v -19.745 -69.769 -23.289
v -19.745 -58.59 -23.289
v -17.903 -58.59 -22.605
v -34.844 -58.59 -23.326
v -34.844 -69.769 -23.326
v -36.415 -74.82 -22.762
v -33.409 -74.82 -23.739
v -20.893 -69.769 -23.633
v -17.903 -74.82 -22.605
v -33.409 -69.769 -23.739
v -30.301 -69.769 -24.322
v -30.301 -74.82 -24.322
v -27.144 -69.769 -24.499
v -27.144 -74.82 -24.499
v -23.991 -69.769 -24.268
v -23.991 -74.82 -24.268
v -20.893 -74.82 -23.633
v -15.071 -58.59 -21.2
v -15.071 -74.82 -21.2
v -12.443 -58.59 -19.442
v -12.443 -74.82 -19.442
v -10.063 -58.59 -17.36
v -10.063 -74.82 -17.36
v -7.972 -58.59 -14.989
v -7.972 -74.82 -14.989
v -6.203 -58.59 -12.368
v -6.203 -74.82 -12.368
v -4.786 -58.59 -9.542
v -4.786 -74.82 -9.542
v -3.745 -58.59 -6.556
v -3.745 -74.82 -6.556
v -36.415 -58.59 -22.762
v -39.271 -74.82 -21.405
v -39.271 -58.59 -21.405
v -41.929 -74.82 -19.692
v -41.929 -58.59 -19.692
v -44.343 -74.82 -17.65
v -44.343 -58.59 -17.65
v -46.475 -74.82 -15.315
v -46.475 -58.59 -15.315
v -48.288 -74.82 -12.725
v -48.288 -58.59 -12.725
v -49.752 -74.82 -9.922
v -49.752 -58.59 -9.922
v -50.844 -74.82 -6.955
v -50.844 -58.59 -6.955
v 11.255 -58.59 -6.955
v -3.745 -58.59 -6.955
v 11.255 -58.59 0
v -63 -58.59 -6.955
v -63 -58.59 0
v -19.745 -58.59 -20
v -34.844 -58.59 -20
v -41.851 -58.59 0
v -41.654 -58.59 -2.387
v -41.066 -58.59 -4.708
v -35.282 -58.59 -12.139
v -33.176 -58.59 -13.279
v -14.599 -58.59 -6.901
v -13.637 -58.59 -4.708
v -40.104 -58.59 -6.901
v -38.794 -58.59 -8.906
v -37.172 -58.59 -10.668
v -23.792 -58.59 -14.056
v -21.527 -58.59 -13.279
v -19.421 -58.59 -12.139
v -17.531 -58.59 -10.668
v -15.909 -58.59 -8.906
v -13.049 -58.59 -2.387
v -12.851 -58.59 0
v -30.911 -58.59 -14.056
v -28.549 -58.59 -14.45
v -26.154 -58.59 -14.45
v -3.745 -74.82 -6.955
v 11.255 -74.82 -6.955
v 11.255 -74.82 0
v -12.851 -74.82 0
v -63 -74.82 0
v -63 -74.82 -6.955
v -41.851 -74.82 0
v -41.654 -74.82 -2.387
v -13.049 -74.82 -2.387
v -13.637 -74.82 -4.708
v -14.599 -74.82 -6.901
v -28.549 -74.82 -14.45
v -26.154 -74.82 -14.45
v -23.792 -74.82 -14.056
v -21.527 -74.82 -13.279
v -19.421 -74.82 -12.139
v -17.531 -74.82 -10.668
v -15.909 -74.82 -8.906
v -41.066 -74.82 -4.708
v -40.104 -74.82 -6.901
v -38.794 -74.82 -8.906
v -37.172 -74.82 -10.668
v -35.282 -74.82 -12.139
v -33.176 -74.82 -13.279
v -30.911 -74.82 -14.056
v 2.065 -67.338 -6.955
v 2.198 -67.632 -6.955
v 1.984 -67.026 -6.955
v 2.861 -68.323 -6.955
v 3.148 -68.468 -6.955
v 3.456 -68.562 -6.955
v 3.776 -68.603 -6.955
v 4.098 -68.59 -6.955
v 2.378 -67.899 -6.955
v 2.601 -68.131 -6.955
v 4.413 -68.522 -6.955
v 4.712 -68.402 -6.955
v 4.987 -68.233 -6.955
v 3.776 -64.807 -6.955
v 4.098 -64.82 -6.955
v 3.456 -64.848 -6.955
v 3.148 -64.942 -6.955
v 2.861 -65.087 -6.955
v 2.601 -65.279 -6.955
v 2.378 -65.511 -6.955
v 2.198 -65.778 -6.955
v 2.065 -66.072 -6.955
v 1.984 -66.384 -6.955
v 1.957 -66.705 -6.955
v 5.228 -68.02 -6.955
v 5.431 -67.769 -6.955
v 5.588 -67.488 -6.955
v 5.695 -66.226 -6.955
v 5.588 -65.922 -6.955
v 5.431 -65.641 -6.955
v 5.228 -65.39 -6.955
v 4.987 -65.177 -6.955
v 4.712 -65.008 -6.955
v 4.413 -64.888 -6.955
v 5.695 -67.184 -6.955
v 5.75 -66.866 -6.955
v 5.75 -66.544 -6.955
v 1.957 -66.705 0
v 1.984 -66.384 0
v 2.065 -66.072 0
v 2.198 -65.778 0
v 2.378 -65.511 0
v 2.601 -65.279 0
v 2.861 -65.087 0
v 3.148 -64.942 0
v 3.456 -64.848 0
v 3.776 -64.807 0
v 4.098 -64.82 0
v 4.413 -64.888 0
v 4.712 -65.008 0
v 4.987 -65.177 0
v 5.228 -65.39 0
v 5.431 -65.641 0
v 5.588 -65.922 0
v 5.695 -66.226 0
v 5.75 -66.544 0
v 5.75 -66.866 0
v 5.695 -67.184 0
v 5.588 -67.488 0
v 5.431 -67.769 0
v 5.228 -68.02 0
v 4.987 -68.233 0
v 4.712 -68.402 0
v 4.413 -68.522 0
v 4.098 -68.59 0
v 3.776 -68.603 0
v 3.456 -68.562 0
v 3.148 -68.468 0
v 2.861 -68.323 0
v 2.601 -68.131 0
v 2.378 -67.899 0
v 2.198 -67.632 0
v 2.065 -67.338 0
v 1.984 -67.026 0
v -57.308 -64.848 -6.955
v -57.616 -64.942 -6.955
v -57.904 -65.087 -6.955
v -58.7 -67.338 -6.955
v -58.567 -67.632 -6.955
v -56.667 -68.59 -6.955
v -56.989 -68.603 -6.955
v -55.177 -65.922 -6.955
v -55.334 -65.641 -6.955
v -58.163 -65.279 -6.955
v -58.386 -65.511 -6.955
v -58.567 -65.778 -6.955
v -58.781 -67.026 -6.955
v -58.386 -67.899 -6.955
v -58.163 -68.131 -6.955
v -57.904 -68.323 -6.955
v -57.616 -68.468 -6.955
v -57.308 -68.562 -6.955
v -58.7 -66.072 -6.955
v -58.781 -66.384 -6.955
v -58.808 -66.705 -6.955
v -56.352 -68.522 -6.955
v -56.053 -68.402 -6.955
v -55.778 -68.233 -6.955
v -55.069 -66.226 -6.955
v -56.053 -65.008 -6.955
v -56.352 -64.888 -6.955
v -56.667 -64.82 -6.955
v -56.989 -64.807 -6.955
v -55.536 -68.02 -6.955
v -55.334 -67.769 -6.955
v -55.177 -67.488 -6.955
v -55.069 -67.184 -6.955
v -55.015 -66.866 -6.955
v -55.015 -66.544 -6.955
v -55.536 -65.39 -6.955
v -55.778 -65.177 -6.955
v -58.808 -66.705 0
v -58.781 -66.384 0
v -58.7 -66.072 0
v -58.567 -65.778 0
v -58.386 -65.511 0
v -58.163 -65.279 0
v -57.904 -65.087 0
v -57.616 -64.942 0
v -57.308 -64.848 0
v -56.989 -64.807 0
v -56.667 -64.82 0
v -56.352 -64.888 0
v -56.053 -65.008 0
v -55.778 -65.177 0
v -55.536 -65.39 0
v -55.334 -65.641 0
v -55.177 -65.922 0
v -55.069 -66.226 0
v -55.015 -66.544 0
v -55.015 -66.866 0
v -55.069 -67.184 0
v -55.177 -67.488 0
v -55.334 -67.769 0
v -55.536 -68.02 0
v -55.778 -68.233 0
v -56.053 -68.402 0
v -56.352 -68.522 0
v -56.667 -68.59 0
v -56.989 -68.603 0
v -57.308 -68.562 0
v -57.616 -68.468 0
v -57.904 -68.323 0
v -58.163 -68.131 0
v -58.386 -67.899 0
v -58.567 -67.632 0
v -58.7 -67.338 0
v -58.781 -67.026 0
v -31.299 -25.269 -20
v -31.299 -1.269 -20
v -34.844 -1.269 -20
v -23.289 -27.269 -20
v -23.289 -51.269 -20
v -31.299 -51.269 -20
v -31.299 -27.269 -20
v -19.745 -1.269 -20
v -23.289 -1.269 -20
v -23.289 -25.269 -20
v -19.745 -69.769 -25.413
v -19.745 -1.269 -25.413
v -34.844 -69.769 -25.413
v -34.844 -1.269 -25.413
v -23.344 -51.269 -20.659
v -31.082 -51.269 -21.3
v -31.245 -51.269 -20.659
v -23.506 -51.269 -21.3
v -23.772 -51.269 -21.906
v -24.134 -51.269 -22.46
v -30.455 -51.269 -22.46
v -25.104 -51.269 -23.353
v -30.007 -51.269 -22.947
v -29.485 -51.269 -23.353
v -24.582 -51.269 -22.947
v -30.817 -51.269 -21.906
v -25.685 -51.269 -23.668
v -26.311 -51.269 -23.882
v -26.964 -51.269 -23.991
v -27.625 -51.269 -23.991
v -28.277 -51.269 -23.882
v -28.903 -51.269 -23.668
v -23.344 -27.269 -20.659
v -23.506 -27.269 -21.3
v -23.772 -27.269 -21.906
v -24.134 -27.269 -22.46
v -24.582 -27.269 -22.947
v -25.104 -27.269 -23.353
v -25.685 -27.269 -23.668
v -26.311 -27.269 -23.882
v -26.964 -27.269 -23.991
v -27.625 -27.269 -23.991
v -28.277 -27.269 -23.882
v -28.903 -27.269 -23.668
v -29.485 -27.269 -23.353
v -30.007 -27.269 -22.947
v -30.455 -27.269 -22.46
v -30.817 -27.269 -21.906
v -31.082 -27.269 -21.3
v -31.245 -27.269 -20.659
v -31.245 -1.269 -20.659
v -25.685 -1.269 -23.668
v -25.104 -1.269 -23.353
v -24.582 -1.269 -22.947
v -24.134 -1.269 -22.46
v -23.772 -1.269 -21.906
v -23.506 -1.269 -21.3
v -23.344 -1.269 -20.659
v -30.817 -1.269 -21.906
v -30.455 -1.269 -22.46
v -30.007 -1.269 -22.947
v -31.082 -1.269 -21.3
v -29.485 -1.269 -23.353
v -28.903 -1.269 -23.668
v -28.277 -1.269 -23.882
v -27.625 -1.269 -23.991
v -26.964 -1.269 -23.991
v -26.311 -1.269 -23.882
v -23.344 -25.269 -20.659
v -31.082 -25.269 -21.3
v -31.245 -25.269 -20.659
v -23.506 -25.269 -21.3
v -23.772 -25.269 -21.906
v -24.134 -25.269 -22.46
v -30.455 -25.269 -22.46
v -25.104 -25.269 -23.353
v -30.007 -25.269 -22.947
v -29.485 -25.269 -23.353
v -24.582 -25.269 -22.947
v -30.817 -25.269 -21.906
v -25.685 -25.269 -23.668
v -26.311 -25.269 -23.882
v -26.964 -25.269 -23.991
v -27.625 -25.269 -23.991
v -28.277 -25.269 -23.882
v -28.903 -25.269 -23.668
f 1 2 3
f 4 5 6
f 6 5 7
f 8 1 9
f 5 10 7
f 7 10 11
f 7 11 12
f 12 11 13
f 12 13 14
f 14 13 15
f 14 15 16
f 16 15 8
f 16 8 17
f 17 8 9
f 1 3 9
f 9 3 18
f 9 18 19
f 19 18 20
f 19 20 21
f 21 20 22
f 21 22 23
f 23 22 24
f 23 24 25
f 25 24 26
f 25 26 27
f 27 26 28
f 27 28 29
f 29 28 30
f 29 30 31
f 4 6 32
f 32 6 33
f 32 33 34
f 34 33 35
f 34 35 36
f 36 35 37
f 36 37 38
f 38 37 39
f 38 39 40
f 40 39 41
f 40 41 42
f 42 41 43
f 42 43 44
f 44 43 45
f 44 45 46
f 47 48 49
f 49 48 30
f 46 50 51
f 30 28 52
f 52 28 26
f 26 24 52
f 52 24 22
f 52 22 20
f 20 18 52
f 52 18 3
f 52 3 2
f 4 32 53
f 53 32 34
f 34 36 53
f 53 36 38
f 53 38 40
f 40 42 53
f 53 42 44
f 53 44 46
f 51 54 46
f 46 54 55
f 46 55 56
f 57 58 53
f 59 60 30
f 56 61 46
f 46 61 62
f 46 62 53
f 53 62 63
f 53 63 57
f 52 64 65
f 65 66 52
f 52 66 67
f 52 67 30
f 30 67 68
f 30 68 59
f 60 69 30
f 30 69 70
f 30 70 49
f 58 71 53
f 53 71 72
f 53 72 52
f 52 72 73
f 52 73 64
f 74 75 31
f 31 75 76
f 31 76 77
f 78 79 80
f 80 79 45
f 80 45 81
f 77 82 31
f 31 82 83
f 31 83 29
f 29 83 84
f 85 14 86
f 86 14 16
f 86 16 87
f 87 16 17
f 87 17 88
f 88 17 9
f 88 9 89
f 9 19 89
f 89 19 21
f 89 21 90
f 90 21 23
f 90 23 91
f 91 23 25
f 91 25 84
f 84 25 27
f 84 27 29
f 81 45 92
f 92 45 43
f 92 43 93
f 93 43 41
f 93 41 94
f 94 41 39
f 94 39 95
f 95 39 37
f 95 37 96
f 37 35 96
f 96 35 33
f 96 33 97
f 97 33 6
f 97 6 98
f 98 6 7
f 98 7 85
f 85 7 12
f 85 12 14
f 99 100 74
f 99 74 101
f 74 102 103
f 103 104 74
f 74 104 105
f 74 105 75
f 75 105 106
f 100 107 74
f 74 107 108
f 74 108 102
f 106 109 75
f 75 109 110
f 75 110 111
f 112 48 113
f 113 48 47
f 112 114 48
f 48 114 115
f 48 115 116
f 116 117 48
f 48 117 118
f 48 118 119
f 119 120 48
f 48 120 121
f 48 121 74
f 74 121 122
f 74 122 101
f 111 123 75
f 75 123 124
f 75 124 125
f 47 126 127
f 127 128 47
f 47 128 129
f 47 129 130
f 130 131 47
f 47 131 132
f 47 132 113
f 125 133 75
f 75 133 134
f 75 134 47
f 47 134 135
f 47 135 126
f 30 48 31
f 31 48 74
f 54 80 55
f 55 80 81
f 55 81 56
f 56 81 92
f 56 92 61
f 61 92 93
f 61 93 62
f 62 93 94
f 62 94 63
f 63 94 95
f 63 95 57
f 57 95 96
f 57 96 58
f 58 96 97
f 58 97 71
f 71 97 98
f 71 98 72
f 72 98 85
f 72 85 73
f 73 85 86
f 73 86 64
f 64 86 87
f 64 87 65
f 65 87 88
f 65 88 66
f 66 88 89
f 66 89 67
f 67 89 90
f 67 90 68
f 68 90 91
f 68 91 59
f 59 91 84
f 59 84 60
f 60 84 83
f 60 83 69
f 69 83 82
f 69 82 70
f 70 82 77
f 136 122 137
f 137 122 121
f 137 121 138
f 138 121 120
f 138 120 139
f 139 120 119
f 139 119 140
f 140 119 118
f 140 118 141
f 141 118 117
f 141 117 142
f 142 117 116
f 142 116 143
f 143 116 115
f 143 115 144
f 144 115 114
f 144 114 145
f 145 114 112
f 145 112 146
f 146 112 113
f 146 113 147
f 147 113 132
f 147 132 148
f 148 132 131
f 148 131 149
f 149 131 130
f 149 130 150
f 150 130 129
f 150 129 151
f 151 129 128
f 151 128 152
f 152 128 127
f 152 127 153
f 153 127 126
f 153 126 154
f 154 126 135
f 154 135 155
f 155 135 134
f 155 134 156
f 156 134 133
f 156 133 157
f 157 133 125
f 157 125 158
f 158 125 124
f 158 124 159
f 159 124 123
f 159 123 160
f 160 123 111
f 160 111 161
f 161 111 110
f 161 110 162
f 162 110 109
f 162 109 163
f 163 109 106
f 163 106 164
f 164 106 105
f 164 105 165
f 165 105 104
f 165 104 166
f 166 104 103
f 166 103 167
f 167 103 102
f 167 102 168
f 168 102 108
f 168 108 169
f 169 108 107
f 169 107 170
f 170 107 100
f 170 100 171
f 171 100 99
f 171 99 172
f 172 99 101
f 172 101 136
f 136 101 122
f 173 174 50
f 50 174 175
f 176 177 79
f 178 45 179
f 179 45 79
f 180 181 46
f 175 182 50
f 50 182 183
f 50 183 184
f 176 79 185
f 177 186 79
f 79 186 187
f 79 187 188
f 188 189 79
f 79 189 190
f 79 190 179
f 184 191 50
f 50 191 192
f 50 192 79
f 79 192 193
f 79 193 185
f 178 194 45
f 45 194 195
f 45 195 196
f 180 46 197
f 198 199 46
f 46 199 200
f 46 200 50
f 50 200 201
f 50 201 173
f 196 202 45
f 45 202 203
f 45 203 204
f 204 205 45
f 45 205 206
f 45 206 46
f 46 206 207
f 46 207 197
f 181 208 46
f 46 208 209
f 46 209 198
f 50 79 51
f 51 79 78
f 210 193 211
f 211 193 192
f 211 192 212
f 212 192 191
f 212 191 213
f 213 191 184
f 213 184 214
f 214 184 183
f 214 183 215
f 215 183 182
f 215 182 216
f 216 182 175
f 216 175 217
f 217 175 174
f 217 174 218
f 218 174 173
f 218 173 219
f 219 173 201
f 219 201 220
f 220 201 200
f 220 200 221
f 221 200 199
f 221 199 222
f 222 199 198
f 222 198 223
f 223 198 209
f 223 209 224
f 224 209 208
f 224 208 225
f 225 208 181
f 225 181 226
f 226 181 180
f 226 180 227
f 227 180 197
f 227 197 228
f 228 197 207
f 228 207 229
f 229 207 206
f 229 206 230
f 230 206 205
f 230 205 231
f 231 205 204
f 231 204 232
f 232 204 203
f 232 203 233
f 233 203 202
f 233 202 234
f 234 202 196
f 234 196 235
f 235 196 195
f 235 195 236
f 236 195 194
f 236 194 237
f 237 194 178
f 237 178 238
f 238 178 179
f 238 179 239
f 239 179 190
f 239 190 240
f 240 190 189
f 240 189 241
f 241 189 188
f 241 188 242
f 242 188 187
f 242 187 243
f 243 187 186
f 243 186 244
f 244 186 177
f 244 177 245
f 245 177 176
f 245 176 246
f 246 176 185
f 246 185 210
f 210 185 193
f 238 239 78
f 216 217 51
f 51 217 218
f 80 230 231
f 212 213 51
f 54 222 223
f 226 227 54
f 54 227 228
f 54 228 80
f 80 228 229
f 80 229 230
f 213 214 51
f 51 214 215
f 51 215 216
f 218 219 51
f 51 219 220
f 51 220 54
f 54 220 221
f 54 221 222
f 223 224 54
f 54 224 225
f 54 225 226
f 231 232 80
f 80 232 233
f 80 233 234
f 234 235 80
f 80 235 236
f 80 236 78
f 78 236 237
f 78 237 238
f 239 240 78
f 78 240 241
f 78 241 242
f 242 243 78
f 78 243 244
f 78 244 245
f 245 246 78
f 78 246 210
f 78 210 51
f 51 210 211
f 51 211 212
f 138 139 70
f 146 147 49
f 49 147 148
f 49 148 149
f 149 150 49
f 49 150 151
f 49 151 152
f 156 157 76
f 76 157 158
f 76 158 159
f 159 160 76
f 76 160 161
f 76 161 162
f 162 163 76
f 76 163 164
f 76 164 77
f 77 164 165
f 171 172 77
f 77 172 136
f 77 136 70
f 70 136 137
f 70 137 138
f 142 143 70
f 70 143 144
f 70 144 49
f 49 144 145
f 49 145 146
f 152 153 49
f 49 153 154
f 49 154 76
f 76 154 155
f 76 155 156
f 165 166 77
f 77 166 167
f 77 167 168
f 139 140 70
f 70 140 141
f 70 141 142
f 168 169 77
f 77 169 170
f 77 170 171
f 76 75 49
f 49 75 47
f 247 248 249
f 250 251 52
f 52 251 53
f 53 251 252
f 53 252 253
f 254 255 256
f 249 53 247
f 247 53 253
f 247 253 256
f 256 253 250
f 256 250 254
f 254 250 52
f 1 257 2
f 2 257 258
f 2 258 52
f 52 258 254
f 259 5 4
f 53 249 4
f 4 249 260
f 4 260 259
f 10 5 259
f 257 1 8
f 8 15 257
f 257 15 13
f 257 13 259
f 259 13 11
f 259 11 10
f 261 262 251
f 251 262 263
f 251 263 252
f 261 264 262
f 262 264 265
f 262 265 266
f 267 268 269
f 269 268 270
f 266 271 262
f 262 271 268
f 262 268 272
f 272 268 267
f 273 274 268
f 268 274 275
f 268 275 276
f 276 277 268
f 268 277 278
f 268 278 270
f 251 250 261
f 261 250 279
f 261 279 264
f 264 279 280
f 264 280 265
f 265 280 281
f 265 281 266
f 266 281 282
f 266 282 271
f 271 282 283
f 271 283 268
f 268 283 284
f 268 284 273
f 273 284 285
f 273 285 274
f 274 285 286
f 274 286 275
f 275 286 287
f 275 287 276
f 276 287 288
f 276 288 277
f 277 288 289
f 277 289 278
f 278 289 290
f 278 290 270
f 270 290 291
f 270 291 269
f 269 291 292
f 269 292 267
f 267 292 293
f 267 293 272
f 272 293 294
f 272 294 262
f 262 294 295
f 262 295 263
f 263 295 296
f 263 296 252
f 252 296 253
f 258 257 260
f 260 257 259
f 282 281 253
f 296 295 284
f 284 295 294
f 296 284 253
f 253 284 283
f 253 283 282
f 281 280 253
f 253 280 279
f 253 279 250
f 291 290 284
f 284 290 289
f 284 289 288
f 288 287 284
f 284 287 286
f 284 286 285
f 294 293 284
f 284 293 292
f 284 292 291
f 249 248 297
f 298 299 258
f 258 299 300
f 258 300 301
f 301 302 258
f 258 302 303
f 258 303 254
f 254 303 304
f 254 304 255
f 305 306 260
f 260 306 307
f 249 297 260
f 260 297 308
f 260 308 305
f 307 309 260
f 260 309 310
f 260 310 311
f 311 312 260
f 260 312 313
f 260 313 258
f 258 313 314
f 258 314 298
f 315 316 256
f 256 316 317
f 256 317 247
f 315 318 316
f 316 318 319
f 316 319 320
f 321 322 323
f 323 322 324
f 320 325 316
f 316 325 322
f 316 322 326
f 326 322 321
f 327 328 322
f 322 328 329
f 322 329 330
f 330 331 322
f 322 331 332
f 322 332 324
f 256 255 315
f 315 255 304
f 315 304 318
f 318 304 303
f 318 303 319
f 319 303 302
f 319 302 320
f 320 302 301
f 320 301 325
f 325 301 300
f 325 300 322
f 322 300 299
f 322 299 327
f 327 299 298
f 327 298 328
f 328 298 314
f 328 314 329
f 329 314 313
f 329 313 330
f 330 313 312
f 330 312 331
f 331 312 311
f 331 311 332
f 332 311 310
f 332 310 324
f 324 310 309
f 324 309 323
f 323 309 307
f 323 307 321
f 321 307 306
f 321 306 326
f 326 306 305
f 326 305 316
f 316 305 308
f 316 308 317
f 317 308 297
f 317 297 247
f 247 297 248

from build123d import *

# Parameters (mm, degrees)
SKETCH_1_W                = 48.51
SKETCH_1_H                = 34
SKETCH_1_W_2              = 28.51
SKETCH_1_H_2              = 14
EXTRUDE_1_DEPTH           = 12.25
SKETCH_2_R                = 1.91
CUT_EXTRUDE_1_DEPTH       = 33.05257439
SKETCH_4_W                = 13
SKETCH_4_H                = 13.91
EXTRUDE_1_2_DEPTH         = 74.82
SKETCH_5_W                = 13.91
SKETCH_5_H                = 16.23
EXTRUDE_2_DEPTH           = 15
SKETCH_7_R                = 24.5
SKETCH_7_R_2              = 14.5
EXTRUDE_2_2_DEPTH         = 16.23
SKETCH_12_R               = 1.9
CUT_EXTRUDE_4_DEPTH       = 97.312124675
EXTRUDE_3_DEPTH           = 10
EXTRUDE_3_DEPTH_BACK      = 8
SKETCH_13_W               = 13.91
SKETCH_13_H               = 16.23
SKETCH_14_R               = 1.9
CUT_EXTRUDE_5_DEPTH       = 103.744583434
SKETCH_16_W               = 90.709398763
SKETCH_16_H               = 28.955068616
CUT_EXTRUDE_7_DEPTH       = 111.229011154
SKETCH_18_W               = 13
SKETCH_18_H               = 93.080932143
CUT_EXTRUDE_10_DEPTH      = 27
CUT_EXTRUDE_11_DEPTH      = 57
CUT_EXTRUDE_11_DEPTH_BACK = 27
SKETCH_17_W               = 20.23049449
SKETCH_17_H               = 80.723570055
SKETCH_21_W               = 15.09856282
SKETCH_21_H               = 42.5
EXTRUDE_6_DEPTH           = 10
SKETCH_22_R               = 4.005
CUT_EXTRUDE_12_DEPTH      = 24
SKETCH_23_W               = 15.09856282
SKETCH_23_H               = 4.587452919
CUT_EXTRUDE_13_DEPTH      = 85.439664289
SKETCH_24_W               = 15.09856282
SKETCH_24_H               = 5.412547081
EXTRUDE_8_DEPTH           = 26
SKETCH_25_R               = 4.005
CUT_EXTRUDE_14_DEPTH      = 24


with BuildPart() as part:
    # 草圖1 → Extrude 1 (new body)
    with BuildSketch(Plane(origin=(0, 0, 0), x_dir=(1, 0, 0), z_dir=(0, 1, 0))):
        Rectangle(SKETCH_1_W, SKETCH_1_H)
        Rectangle(SKETCH_1_W_2, SKETCH_1_H_2, mode=Mode.SUBTRACT)
    extrude(amount=EXTRUDE_1_DEPTH)

    # 草圖2 → 除料-伸長1 (cut, through all)
    with BuildSketch(Plane(origin=(0, 12.25, 0), x_dir=(1, 0, 0), z_dir=(0, 1, 0))):
        with Locations(Location((-19.255, 0, 0), (0, 0, 270))):
            Circle(SKETCH_2_R)
        with Locations(Location((19.255, 0, 0), (0, 0, 270))):
            Circle(SKETCH_2_R)
    extrude(amount=-CUT_EXTRUDE_1_DEPTH, mode=Mode.SUBTRACT)

    # 草圖4 → Extrude 1 2 (add)
    with BuildSketch(Plane.XZ):
        with Locations((17.755, 0)):
            Rectangle(SKETCH_4_W, SKETCH_4_H)
    extrude(amount=EXTRUDE_1_2_DEPTH)

    # 草圖5 → Extrude 2 (add)
    with BuildSketch(Plane.ZY.offset(-11.255)):
        with Locations((0, -66.705)):
            Rectangle(SKETCH_5_W, SKETCH_5_H)
    extrude(amount=EXTRUDE_2_DEPTH)

    # 草圖7 → Extrude 2 2 (add)
    with BuildSketch(Plane(origin=(3.626674765, -74.82, 0), x_dir=(1, 0, 0), z_dir=(0, -1, 0))):
        with Locations((-30.978154344, 0)):
            Circle(SKETCH_7_R)
        with Locations((-30.978154344, 0)):
            Circle(SKETCH_7_R_2, mode=Mode.SUBTRACT)
    extrude(amount=-EXTRUDE_2_2_DEPTH)

    # 草圖12 → 除料-伸長4 (cut, through all)
    with BuildSketch(Plane(origin=(0, 0, -6.955), x_dir=(-1, 0, 0), z_dir=(0, 0, -1))):
        with Locations((-3.856713649, -66.705)):
            Circle(SKETCH_12_R)
    extrude(amount=-CUT_EXTRUDE_4_DEPTH, mode=Mode.SUBTRACT)

    # 草圖13 → 填料-伸長3 (add, two sides: drawn at the far end of the back side and taken through both)
    with BuildSketch(Plane(origin=(-55, 0, 0), x_dir=(0, 0, -1), z_dir=(1, 0, 0)).offset(-EXTRUDE_3_DEPTH_BACK)):
        with Locations((0, -66.705)):
            Rectangle(SKETCH_13_W, SKETCH_13_H)
    extrude(amount=EXTRUDE_3_DEPTH + EXTRUDE_3_DEPTH_BACK)

    # 草圖14 → 除料-伸長5 (cut, through all)
    with BuildSketch(Plane(origin=(0, 0, -6.955), x_dir=(-1, 0, 0), z_dir=(0, 0, -1))):
        with Locations((56.908040017, -66.705)):
            Circle(SKETCH_14_R)
    extrude(amount=-CUT_EXTRUDE_5_DEPTH, mode=Mode.SUBTRACT)

    # 草圖16 → 除料-伸長7 (cut, through all)
    with BuildSketch(Plane(origin=(0, 12.25, 0), x_dir=(1, 0, 0), z_dir=(0, 1, 0))):
        with Locations((-17.645300619, -14.477534308)):
            Rectangle(SKETCH_16_W, SKETCH_16_H)
    extrude(amount=-CUT_EXTRUDE_7_DEPTH, mode=Mode.SUBTRACT)

    # 草圖18 → 除料-伸長10 (cut)
    with BuildSketch(Plane.XY):
        with Locations((17.755, -28.279533929)):
            Rectangle(SKETCH_18_W, SKETCH_18_H)
    extrude(amount=-CUT_EXTRUDE_10_DEPTH, mode=Mode.SUBTRACT)


with BuildPart() as cut_extrude_10_piece_1:
    # of the separate pieces the step leaves, piece 1, a body of its own (cut_extrude_10_pieces)
    add(part.part.solids().sort_by_distance((11.255, -58.59, -6.955))[0])

    # 草圖21 → 填料-伸長6 (add)
    with BuildSketch(Plane.XY.offset(-30)):
        with Locations((-27.29428141, -48.519427919)):
            Rectangle(SKETCH_21_W, SKETCH_21_H)
    extrude(amount=EXTRUDE_6_DEPTH)

    # 草圖22 → 除料-伸長12 (cut)
    with BuildSketch(Plane(origin=(0, -27.269427919, 0), x_dir=(1, 0, 0), z_dir=(0, 1, 0))):
        with Locations((-27.29428141, 20)):
            Circle(SKETCH_22_R)
    extrude(amount=-CUT_EXTRUDE_12_DEPTH, mode=Mode.SUBTRACT)

    # 草圖23 → 除料-伸長13 (cut, through all)
    with BuildSketch(Plane(origin=(0, -27.269427919, 0), x_dir=(1, 0, 0), z_dir=(0, 1, 0))):
        with Locations((-27.29428141, 27.706273541)):
            Rectangle(SKETCH_23_W, SKETCH_23_H)
    extrude(amount=-CUT_EXTRUDE_13_DEPTH, mode=Mode.SUBTRACT)

    # 草圖24 → 填料-伸長8 (add)
    with BuildSketch(Plane(origin=(0, -27.269427919, 0), x_dir=(1, 0, 0), z_dir=(0, 1, 0))):
        with Locations((-27.29428141, 22.70627354)):
            Rectangle(SKETCH_24_W, SKETCH_24_H)
    extrude(amount=EXTRUDE_8_DEPTH)

    # 草圖25 → 除料-伸長14 (cut)
    with BuildSketch(Plane(origin=(0, -1.269427919, 0), x_dir=(1, 0, 0), z_dir=(0, 1, 0))):
        with Locations((-27.29428141, 20)):
            Circle(SKETCH_25_R)
    extrude(amount=-CUT_EXTRUDE_14_DEPTH, mode=Mode.SUBTRACT)


with BuildPart() as cut_extrude_10_piece_2:
    # of the separate pieces the step leaves, piece 2, a body of its own (cut_extrude_10_pieces)
    add(part.part.solids().sort_by_distance((-17.345, 0, 0))[0])

    # 草圖17 → 除料-伸長11 (cut, two sides: drawn at the far end of the back side and taken through both)
    with BuildSketch(Plane.ZY.offset(-11.255).offset(-CUT_EXTRUDE_11_DEPTH_BACK)):
        with Locations((-10.115247245, -18.228214973)):
            Rectangle(SKETCH_17_W, SKETCH_17_H)
    extrude(amount=CUT_EXTRUDE_11_DEPTH + CUT_EXTRUDE_11_DEPTH_BACK, mode=Mode.SUBTRACT)


solid = cut_extrude_10_piece_1.part
